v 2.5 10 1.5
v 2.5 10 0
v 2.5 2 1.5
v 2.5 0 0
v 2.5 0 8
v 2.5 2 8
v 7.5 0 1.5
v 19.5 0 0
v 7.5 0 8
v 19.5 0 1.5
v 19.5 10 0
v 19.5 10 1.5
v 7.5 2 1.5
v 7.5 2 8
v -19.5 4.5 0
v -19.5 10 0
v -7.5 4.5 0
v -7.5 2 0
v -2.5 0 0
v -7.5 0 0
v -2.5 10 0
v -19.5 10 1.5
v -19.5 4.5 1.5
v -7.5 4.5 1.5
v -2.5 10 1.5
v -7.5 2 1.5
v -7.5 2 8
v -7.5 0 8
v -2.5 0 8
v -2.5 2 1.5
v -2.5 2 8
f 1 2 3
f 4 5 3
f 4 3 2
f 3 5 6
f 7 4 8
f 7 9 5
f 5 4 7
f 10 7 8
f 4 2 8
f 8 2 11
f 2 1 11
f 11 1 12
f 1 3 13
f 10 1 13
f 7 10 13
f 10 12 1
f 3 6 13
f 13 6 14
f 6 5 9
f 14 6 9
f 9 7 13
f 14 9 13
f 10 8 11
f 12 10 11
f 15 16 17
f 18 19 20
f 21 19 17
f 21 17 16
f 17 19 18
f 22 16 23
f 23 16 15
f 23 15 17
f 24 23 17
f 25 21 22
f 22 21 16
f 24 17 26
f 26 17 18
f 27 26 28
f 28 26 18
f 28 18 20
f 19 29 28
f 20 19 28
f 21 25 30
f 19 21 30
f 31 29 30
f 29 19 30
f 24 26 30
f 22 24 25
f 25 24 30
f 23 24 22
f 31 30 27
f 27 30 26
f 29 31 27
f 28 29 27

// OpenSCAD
translate([2.5,0]){
cube([17,10,1.5]);
cube([5,2,8]);
}

mirror([1,0,0])
translate([2.5,0]){
difference(){
cube([17,10,1.5]);
translate([5,0])#cube([12,4.5,1.5]);
}
cube([5,2,8]);

}
